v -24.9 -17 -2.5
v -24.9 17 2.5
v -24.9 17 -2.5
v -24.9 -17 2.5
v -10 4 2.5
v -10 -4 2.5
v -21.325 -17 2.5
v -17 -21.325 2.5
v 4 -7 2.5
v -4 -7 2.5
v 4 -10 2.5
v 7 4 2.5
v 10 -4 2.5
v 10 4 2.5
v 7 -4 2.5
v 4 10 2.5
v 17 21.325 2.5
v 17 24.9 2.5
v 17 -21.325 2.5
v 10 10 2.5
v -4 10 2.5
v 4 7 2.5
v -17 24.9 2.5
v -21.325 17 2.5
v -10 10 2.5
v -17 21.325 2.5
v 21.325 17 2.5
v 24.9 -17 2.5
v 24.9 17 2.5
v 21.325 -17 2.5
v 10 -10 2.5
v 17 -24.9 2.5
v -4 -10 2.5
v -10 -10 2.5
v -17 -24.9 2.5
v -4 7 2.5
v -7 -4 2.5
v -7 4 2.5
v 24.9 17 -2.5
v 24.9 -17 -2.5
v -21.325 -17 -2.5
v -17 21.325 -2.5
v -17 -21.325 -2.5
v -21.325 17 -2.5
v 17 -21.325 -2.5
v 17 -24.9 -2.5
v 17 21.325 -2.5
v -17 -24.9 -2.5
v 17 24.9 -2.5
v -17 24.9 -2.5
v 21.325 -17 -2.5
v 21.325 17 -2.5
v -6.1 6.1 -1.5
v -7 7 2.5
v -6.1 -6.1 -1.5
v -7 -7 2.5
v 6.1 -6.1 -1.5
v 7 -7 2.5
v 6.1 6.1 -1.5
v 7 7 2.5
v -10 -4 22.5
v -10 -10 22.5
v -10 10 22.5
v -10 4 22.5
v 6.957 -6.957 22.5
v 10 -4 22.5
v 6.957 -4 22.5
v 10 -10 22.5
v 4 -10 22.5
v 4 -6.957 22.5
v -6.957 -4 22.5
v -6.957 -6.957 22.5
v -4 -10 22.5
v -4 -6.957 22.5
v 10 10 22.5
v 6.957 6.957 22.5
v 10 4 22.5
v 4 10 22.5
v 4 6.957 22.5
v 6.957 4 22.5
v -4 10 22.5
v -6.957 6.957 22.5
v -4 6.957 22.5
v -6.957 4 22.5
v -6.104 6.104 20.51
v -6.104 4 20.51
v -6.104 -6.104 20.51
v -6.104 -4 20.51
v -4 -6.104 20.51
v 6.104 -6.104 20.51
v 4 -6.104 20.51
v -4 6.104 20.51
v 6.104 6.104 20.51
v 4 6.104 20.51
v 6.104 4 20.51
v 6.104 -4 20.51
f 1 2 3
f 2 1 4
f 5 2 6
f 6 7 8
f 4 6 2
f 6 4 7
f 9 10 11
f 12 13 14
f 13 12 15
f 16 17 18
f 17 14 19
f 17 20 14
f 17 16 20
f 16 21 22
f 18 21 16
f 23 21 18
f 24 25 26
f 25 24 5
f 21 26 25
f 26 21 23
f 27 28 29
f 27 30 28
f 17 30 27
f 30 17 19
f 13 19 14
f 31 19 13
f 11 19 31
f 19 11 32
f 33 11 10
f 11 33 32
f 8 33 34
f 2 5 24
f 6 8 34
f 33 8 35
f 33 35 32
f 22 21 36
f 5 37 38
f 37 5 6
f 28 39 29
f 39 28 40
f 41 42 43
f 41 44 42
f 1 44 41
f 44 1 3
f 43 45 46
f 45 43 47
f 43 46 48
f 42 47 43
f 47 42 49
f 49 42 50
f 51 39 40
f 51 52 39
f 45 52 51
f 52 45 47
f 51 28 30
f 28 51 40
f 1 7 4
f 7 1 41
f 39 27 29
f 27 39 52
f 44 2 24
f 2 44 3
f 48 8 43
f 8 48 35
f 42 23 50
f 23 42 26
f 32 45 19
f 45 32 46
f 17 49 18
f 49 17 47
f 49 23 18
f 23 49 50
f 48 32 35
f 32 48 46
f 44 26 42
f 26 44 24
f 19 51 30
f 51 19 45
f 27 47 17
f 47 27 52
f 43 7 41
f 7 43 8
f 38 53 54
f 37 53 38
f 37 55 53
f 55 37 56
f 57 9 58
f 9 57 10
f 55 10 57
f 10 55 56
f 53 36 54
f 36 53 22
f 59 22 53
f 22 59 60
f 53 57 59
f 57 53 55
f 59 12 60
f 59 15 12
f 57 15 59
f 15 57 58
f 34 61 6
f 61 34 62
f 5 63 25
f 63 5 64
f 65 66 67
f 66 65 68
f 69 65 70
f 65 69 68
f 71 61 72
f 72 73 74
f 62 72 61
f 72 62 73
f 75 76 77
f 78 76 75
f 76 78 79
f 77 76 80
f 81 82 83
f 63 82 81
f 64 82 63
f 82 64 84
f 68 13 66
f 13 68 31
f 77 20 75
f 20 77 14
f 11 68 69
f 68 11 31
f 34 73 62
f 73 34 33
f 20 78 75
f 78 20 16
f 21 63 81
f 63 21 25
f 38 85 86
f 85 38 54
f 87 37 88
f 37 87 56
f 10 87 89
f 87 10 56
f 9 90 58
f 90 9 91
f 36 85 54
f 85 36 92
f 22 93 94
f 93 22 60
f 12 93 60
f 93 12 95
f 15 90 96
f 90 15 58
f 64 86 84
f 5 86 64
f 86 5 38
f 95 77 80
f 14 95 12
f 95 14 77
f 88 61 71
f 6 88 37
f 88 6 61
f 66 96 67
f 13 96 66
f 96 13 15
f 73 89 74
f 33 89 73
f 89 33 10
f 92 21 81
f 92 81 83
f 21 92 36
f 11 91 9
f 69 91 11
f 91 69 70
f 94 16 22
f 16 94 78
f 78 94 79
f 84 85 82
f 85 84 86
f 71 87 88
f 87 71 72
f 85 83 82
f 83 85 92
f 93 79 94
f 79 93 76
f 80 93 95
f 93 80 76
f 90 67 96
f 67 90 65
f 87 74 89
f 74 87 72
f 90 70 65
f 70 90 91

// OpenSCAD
//Cube insert: Perpendicular 


/* [Hiden] */
$fn = 80;
eps = .002;
a = 49.8;
b = 33.6;
c = 6.28;
d = 53.8;
h = 5;

tol = 0.1;

l_cuv = 12;
w_cuv = 12;
h_cuv = 30;
dist_cuv = 1;
z_cuv = -4;

l_therm = 3-tol;
h_therm = 20;
w_therm = 20;

l_holder = 20;
w_holder = 20;
h_holder = 20;
l_frame = 3;
l_pin = 2;



h_open = 18;

h_top = h_holder-h_open;

IM_offset = 0.2;



insert();

module trunc_pyramid(la, wa, lb, wb, h) {
    la = la / 2;
    wa = wa / 2;
    lb = lb / 2;
    wb = wb / 2;

    polyhedron(
        points=[
            // bottom
            [ la,  wa, 0],   // 0
            [ la, -wa, 0],   // 1
            [-la, -wa, 0],   // 2
            [-la,  wa, 0],   // 3

            // top
            [ lb,  wb, h],   // 4
            [ lb, -wb, h],   // 5
            [-lb, -wb, h],   // 6
            [-lb,  wb, h]    // 7
        ],

        faces=[
            // bottom (außen zeigt nach -Z, also CCW von unten)
            [0,2,1],
            [0,3,2],

            // top (außen zeigt nach +Z, also CCW von oben)
            [4,6,7],
            [4,5,6],

            // sides (alle CCW von außen)
            [0,1,5], [0,5,4],
            [1,2,6], [1,6,5],
            [2,3,7], [2,7,6],
            [3,0,4], [3,4,7]
        ],

        convexity = 20
    );
}



module insert() {
    translate([-l_cuv/2,-w_cuv/2,h/2]) {%cube([l_cuv, w_cuv, h_cuv]); }
    translate([-a/2,-w_therm/2,h/2]) {color([0,0,1]) %cube([l_therm, w_therm, h_therm]); };
    
    difference() {
    translate([-l_holder/2,-w_holder/2,h/2]) {cube([l_holder, w_holder, h_holder]); }
    translate([0,0,h/2]) {trunc_pyramid(l_cuv+2*dist_cuv, w_cuv+2*dist_cuv, l_cuv+2*tol, w_cuv+2*tol, h_holder-h_top+tol); }
  


    
    translate([-dist_cuv-l_holder/2,l_pin-w_cuv/2,h/2]) {cube([l_holder+2*dist_cuv, w_cuv-2*l_pin, h_holder+tol]); }
    translate([l_pin-l_cuv/2,-dist_cuv-w_holder/2,h/2]) {cube([l_cuv-2*l_pin, w_holder+dist_cuv*2, h_holder+tol]); }
    
    
    translate([0,0,h/2+h_holder-h_top]) {trunc_pyramid(l_cuv+2*tol, w_cuv+2*tol, l_cuv+2*dist_cuv, w_cuv+2*dist_cuv, h_top+tol);}

    
    }

    difference() {
        union() {   //basic insert design
                cube([a,b+2*IM_offset,h], center=true);
                cube([b+2*IM_offset,a,h], center=true);
                rotate(a=[0,0,45]){
                    cube([c,d+2*IM_offset,h], center=true);
                }
                rotate(a=[0,0,-45]){
                    cube([c,d+2*IM_offset,h], center=true);
                }
            }
        translate([0,0,h/2+z_cuv]) {trunc_pyramid(l_cuv+2*tol, w_cuv+2*tol, l_cuv+2*dist_cuv, w_cuv+2*dist_cuv, -z_cuv);}
    }
}
